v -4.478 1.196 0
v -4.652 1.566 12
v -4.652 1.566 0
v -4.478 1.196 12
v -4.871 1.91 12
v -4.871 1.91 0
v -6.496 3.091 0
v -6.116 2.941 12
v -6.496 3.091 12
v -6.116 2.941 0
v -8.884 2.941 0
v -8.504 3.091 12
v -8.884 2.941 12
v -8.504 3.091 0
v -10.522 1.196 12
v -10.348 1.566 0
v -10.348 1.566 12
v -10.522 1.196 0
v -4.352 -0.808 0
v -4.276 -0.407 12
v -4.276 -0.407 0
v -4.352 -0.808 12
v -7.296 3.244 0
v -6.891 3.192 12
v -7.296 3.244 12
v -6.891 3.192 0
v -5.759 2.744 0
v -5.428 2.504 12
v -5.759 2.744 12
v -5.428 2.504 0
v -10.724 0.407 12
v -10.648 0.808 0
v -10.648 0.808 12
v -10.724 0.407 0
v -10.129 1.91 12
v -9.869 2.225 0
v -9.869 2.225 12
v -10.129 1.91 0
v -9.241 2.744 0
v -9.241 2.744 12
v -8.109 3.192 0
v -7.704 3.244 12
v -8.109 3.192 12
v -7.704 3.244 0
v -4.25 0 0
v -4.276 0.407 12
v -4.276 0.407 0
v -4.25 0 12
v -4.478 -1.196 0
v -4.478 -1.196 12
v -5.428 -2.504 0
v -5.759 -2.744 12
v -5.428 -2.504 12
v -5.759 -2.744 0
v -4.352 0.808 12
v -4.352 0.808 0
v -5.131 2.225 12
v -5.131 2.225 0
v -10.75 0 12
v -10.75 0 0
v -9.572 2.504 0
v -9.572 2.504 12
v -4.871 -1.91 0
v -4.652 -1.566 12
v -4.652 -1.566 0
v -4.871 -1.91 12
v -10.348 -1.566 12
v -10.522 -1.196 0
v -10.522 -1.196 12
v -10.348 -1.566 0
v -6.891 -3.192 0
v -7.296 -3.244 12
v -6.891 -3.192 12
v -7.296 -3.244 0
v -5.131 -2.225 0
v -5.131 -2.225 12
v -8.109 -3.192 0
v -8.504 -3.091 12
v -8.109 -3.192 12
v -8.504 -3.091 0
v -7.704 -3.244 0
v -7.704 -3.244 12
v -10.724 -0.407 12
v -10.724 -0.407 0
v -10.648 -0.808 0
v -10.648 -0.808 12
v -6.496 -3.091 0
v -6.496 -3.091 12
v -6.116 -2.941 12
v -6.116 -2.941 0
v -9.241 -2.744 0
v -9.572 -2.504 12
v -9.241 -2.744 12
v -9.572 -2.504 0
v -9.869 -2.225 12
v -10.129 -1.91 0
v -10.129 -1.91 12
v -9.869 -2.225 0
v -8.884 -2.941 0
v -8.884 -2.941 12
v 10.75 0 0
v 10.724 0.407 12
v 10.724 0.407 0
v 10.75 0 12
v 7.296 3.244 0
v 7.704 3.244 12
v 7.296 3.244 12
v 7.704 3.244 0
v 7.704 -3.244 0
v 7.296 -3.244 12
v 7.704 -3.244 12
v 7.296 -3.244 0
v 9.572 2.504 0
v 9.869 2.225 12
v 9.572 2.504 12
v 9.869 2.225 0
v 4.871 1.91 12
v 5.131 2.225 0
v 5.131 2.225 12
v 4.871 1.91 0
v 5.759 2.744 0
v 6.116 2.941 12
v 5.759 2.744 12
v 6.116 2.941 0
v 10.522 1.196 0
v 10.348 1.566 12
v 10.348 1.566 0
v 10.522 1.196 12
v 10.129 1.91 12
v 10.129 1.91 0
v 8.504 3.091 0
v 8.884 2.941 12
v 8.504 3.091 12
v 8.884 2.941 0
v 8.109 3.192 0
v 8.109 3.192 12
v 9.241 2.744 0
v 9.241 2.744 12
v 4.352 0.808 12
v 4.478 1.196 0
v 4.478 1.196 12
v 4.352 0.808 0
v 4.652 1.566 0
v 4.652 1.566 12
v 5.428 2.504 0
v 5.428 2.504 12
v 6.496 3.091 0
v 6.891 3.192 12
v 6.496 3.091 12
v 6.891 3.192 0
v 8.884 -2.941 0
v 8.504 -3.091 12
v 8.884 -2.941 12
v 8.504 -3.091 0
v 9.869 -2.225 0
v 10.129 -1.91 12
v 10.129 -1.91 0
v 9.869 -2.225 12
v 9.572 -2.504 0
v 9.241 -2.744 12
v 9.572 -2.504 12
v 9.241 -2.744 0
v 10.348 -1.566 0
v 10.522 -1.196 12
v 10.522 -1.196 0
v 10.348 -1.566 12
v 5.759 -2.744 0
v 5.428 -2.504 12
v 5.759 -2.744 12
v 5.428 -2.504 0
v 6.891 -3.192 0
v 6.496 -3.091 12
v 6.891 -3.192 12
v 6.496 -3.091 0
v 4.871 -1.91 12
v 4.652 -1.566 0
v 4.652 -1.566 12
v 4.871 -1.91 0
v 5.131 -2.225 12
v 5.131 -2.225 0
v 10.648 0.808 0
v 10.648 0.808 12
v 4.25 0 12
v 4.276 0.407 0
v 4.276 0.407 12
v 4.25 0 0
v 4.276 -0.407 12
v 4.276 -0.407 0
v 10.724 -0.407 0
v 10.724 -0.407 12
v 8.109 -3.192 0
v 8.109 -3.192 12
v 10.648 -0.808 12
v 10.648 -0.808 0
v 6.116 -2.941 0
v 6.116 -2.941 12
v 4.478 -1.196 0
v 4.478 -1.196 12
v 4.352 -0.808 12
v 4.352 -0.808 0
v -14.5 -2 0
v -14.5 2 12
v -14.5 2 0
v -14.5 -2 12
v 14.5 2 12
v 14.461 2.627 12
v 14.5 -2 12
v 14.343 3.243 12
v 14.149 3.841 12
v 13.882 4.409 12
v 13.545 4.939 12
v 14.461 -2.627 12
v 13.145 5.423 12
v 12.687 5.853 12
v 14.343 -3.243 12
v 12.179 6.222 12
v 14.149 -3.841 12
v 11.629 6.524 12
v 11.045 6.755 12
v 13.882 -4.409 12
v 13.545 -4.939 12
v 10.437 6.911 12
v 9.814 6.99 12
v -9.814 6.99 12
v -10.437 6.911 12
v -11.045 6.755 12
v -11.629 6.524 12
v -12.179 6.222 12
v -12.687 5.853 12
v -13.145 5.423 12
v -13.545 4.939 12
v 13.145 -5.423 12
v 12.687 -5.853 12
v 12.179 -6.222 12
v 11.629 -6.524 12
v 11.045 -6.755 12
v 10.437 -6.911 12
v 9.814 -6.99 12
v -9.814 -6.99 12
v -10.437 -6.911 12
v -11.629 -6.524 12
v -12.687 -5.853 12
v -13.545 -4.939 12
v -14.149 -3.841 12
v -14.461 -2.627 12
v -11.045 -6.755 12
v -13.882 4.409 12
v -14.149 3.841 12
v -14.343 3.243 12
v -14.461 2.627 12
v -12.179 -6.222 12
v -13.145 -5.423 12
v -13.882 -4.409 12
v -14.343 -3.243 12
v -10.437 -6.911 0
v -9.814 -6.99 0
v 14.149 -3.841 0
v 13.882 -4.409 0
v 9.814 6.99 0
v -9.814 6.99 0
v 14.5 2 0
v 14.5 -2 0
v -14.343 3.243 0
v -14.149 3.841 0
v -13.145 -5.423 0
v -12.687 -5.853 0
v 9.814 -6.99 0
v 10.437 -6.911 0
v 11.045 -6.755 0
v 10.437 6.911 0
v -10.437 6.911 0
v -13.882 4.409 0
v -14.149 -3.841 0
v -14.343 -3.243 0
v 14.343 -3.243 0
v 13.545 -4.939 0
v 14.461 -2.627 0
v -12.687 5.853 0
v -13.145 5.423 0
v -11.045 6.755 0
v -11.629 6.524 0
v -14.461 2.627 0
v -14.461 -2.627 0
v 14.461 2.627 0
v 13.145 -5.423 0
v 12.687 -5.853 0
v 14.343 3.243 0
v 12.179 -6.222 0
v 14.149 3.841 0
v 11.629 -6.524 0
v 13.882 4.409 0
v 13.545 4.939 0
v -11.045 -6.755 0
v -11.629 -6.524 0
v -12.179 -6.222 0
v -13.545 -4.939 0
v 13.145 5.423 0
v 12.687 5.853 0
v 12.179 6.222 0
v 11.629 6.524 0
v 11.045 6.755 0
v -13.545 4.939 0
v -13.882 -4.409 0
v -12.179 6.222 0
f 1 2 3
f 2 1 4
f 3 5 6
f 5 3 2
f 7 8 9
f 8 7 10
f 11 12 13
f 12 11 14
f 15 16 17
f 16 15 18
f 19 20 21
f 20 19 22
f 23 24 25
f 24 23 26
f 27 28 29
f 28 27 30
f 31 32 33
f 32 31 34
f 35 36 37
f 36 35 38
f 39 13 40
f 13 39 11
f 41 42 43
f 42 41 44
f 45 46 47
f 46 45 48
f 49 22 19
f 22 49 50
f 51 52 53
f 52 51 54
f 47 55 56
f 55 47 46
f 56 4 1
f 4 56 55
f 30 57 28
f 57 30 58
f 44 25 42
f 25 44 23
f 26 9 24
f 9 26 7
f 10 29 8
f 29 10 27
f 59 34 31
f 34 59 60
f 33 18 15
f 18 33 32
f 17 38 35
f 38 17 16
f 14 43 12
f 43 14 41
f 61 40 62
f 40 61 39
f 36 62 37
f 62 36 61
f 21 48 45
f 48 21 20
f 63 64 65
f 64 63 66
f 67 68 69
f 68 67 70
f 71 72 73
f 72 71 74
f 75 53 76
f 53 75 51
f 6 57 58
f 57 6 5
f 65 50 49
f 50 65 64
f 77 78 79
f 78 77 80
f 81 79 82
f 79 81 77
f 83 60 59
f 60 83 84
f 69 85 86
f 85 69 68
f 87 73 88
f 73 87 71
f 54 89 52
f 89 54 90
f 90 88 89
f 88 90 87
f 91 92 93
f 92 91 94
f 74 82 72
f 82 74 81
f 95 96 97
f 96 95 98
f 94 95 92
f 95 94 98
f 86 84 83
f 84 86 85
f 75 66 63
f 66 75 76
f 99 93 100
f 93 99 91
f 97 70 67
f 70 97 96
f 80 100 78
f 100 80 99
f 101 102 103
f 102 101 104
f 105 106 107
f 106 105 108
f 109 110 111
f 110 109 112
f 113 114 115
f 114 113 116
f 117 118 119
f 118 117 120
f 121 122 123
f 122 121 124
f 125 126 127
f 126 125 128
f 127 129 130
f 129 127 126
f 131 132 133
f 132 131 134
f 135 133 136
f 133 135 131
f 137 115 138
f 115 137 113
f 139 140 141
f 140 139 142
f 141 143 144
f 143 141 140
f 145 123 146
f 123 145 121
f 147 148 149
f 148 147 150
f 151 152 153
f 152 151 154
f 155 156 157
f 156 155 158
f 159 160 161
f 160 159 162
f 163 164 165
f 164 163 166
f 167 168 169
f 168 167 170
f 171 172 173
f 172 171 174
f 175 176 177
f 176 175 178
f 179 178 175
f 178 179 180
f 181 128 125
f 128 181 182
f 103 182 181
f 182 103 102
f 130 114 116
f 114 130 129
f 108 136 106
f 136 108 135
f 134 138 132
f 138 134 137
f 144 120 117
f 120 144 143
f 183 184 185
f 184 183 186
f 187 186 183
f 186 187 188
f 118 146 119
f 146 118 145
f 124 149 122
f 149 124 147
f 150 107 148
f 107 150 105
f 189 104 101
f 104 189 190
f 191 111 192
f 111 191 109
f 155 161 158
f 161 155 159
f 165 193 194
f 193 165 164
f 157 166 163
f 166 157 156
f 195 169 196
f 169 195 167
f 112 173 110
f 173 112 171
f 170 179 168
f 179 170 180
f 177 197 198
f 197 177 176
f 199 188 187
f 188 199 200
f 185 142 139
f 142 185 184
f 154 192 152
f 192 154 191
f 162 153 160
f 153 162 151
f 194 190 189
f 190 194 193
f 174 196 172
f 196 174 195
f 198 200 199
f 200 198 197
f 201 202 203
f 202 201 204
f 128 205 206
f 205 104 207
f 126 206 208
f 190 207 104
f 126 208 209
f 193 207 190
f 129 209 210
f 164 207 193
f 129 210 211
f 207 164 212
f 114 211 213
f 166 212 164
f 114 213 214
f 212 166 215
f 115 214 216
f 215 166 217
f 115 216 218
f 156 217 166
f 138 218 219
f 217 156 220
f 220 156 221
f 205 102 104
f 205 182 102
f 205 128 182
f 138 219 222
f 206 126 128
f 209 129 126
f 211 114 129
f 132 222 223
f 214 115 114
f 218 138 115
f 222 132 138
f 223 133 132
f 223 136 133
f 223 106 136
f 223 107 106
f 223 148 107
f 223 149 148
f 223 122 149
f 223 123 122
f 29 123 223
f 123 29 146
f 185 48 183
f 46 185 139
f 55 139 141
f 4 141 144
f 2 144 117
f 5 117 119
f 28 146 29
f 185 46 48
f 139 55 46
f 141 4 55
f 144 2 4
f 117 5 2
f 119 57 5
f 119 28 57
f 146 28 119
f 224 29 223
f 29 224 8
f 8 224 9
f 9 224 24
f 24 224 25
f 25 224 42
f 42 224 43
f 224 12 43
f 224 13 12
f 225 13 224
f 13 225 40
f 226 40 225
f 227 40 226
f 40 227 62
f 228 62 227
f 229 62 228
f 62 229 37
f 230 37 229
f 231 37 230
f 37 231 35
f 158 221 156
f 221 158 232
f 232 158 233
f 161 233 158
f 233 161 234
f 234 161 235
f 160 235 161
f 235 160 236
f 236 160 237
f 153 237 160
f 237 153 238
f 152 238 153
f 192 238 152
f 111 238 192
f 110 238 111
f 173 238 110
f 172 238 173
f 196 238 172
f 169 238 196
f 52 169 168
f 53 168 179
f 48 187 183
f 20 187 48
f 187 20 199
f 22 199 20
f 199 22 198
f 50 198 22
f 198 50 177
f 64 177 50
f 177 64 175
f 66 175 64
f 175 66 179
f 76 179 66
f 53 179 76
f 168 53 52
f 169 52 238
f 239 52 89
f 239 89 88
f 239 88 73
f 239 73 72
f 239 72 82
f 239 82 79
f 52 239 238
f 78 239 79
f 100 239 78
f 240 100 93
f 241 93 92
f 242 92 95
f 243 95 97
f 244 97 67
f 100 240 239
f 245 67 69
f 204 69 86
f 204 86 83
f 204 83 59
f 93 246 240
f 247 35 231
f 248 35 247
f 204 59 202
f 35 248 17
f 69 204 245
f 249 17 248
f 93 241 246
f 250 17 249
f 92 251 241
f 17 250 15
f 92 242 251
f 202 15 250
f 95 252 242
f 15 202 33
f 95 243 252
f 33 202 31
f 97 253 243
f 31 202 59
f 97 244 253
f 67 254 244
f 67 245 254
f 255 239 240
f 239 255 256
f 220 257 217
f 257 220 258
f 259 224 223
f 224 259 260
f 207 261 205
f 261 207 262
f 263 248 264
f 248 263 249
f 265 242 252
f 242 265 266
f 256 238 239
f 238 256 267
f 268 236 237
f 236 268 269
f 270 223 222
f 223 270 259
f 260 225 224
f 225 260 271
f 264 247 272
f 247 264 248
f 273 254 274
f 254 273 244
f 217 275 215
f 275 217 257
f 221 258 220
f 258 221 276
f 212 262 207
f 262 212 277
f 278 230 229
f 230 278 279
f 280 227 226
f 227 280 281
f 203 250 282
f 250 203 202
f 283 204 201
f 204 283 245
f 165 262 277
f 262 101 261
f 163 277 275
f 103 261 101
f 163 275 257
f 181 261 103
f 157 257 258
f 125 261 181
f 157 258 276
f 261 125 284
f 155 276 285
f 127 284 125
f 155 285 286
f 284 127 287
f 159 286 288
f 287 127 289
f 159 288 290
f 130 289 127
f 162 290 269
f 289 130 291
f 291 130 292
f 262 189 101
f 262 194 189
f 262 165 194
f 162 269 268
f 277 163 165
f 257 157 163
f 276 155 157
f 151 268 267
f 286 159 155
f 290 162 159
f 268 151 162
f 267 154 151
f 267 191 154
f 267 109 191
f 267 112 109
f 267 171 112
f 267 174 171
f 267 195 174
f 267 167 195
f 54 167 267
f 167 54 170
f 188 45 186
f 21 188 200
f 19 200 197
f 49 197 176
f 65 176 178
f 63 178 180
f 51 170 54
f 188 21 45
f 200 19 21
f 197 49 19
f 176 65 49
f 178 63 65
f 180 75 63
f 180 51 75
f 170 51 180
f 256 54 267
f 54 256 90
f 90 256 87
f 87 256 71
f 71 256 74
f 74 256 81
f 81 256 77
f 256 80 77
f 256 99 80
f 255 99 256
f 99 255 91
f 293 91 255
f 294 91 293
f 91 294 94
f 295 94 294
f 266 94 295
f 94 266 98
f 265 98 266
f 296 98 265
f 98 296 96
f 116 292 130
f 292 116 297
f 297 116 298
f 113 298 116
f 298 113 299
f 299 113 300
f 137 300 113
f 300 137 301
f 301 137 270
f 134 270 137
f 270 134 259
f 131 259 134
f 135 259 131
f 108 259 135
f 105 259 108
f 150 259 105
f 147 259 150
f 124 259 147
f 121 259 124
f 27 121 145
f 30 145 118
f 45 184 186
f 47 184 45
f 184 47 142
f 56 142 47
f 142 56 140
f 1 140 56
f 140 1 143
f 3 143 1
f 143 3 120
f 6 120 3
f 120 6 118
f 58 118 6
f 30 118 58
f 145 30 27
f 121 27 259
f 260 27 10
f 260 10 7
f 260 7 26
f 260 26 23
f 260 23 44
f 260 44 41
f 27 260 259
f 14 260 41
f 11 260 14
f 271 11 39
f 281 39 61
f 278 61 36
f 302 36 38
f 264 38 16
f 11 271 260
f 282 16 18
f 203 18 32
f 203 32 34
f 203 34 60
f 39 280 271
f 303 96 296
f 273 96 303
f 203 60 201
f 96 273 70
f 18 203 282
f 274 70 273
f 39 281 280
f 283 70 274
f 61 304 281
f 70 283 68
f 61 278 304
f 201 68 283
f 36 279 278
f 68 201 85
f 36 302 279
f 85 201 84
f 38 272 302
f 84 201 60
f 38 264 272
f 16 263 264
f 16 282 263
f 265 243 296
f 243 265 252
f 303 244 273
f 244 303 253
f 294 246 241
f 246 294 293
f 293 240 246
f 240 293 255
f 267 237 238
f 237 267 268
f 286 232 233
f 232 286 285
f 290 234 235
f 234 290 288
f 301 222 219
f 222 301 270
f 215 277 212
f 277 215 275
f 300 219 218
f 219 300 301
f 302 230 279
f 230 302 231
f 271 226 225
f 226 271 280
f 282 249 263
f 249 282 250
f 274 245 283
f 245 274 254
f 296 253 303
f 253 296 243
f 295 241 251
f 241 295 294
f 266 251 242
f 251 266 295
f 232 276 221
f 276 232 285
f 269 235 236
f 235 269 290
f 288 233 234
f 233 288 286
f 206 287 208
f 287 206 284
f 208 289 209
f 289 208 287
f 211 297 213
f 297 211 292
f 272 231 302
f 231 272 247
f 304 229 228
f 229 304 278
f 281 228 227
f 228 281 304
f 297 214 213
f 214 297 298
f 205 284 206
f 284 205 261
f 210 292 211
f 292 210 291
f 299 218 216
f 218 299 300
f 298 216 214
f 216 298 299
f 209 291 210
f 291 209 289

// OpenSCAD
$fn = 50;


difference() {
	union() {
		hull() {
			translate(v = [-9.5000000000, 2.0000000000, 0]) {
				cylinder(h = 12, r = 5);
			}
			translate(v = [9.5000000000, 2.0000000000, 0]) {
				cylinder(h = 12, r = 5);
			}
			translate(v = [-9.5000000000, -2.0000000000, 0]) {
				cylinder(h = 12, r = 5);
			}
			translate(v = [9.5000000000, -2.0000000000, 0]) {
				cylinder(h = 12, r = 5);
			}
		}
	}
	union() {
		translate(v = [-7.5000000000, 0.0000000000, 0]) {
			cylinder(h = 12, r = 3.2500000000);
		}
		translate(v = [7.5000000000, 0.0000000000, 0]) {
			cylinder(h = 12, r = 3.2500000000);
		}
		translate(v = [-7.5000000000, 0.0000000000, 0]) {
			cylinder(h = 12, r = 1.8000000000);
		}
		translate(v = [7.5000000000, 0.0000000000, 0]) {
			cylinder(h = 12, r = 1.8000000000);
		}
		translate(v = [-7.5000000000, 0.0000000000, 0]) {
			cylinder(h = 12, r = 1.8000000000);
		}
		translate(v = [7.5000000000, 0.0000000000, 0]) {
			cylinder(h = 12, r = 1.8000000000);
		}
		translate(v = [-7.5000000000, 0.0000000000, 0]) {
			cylinder(h = 12, r = 1.8000000000);
		}
		translate(v = [7.5000000000, 0.0000000000, 0]) {
			cylinder(h = 12, r = 1.8000000000);
		}
	}
}
